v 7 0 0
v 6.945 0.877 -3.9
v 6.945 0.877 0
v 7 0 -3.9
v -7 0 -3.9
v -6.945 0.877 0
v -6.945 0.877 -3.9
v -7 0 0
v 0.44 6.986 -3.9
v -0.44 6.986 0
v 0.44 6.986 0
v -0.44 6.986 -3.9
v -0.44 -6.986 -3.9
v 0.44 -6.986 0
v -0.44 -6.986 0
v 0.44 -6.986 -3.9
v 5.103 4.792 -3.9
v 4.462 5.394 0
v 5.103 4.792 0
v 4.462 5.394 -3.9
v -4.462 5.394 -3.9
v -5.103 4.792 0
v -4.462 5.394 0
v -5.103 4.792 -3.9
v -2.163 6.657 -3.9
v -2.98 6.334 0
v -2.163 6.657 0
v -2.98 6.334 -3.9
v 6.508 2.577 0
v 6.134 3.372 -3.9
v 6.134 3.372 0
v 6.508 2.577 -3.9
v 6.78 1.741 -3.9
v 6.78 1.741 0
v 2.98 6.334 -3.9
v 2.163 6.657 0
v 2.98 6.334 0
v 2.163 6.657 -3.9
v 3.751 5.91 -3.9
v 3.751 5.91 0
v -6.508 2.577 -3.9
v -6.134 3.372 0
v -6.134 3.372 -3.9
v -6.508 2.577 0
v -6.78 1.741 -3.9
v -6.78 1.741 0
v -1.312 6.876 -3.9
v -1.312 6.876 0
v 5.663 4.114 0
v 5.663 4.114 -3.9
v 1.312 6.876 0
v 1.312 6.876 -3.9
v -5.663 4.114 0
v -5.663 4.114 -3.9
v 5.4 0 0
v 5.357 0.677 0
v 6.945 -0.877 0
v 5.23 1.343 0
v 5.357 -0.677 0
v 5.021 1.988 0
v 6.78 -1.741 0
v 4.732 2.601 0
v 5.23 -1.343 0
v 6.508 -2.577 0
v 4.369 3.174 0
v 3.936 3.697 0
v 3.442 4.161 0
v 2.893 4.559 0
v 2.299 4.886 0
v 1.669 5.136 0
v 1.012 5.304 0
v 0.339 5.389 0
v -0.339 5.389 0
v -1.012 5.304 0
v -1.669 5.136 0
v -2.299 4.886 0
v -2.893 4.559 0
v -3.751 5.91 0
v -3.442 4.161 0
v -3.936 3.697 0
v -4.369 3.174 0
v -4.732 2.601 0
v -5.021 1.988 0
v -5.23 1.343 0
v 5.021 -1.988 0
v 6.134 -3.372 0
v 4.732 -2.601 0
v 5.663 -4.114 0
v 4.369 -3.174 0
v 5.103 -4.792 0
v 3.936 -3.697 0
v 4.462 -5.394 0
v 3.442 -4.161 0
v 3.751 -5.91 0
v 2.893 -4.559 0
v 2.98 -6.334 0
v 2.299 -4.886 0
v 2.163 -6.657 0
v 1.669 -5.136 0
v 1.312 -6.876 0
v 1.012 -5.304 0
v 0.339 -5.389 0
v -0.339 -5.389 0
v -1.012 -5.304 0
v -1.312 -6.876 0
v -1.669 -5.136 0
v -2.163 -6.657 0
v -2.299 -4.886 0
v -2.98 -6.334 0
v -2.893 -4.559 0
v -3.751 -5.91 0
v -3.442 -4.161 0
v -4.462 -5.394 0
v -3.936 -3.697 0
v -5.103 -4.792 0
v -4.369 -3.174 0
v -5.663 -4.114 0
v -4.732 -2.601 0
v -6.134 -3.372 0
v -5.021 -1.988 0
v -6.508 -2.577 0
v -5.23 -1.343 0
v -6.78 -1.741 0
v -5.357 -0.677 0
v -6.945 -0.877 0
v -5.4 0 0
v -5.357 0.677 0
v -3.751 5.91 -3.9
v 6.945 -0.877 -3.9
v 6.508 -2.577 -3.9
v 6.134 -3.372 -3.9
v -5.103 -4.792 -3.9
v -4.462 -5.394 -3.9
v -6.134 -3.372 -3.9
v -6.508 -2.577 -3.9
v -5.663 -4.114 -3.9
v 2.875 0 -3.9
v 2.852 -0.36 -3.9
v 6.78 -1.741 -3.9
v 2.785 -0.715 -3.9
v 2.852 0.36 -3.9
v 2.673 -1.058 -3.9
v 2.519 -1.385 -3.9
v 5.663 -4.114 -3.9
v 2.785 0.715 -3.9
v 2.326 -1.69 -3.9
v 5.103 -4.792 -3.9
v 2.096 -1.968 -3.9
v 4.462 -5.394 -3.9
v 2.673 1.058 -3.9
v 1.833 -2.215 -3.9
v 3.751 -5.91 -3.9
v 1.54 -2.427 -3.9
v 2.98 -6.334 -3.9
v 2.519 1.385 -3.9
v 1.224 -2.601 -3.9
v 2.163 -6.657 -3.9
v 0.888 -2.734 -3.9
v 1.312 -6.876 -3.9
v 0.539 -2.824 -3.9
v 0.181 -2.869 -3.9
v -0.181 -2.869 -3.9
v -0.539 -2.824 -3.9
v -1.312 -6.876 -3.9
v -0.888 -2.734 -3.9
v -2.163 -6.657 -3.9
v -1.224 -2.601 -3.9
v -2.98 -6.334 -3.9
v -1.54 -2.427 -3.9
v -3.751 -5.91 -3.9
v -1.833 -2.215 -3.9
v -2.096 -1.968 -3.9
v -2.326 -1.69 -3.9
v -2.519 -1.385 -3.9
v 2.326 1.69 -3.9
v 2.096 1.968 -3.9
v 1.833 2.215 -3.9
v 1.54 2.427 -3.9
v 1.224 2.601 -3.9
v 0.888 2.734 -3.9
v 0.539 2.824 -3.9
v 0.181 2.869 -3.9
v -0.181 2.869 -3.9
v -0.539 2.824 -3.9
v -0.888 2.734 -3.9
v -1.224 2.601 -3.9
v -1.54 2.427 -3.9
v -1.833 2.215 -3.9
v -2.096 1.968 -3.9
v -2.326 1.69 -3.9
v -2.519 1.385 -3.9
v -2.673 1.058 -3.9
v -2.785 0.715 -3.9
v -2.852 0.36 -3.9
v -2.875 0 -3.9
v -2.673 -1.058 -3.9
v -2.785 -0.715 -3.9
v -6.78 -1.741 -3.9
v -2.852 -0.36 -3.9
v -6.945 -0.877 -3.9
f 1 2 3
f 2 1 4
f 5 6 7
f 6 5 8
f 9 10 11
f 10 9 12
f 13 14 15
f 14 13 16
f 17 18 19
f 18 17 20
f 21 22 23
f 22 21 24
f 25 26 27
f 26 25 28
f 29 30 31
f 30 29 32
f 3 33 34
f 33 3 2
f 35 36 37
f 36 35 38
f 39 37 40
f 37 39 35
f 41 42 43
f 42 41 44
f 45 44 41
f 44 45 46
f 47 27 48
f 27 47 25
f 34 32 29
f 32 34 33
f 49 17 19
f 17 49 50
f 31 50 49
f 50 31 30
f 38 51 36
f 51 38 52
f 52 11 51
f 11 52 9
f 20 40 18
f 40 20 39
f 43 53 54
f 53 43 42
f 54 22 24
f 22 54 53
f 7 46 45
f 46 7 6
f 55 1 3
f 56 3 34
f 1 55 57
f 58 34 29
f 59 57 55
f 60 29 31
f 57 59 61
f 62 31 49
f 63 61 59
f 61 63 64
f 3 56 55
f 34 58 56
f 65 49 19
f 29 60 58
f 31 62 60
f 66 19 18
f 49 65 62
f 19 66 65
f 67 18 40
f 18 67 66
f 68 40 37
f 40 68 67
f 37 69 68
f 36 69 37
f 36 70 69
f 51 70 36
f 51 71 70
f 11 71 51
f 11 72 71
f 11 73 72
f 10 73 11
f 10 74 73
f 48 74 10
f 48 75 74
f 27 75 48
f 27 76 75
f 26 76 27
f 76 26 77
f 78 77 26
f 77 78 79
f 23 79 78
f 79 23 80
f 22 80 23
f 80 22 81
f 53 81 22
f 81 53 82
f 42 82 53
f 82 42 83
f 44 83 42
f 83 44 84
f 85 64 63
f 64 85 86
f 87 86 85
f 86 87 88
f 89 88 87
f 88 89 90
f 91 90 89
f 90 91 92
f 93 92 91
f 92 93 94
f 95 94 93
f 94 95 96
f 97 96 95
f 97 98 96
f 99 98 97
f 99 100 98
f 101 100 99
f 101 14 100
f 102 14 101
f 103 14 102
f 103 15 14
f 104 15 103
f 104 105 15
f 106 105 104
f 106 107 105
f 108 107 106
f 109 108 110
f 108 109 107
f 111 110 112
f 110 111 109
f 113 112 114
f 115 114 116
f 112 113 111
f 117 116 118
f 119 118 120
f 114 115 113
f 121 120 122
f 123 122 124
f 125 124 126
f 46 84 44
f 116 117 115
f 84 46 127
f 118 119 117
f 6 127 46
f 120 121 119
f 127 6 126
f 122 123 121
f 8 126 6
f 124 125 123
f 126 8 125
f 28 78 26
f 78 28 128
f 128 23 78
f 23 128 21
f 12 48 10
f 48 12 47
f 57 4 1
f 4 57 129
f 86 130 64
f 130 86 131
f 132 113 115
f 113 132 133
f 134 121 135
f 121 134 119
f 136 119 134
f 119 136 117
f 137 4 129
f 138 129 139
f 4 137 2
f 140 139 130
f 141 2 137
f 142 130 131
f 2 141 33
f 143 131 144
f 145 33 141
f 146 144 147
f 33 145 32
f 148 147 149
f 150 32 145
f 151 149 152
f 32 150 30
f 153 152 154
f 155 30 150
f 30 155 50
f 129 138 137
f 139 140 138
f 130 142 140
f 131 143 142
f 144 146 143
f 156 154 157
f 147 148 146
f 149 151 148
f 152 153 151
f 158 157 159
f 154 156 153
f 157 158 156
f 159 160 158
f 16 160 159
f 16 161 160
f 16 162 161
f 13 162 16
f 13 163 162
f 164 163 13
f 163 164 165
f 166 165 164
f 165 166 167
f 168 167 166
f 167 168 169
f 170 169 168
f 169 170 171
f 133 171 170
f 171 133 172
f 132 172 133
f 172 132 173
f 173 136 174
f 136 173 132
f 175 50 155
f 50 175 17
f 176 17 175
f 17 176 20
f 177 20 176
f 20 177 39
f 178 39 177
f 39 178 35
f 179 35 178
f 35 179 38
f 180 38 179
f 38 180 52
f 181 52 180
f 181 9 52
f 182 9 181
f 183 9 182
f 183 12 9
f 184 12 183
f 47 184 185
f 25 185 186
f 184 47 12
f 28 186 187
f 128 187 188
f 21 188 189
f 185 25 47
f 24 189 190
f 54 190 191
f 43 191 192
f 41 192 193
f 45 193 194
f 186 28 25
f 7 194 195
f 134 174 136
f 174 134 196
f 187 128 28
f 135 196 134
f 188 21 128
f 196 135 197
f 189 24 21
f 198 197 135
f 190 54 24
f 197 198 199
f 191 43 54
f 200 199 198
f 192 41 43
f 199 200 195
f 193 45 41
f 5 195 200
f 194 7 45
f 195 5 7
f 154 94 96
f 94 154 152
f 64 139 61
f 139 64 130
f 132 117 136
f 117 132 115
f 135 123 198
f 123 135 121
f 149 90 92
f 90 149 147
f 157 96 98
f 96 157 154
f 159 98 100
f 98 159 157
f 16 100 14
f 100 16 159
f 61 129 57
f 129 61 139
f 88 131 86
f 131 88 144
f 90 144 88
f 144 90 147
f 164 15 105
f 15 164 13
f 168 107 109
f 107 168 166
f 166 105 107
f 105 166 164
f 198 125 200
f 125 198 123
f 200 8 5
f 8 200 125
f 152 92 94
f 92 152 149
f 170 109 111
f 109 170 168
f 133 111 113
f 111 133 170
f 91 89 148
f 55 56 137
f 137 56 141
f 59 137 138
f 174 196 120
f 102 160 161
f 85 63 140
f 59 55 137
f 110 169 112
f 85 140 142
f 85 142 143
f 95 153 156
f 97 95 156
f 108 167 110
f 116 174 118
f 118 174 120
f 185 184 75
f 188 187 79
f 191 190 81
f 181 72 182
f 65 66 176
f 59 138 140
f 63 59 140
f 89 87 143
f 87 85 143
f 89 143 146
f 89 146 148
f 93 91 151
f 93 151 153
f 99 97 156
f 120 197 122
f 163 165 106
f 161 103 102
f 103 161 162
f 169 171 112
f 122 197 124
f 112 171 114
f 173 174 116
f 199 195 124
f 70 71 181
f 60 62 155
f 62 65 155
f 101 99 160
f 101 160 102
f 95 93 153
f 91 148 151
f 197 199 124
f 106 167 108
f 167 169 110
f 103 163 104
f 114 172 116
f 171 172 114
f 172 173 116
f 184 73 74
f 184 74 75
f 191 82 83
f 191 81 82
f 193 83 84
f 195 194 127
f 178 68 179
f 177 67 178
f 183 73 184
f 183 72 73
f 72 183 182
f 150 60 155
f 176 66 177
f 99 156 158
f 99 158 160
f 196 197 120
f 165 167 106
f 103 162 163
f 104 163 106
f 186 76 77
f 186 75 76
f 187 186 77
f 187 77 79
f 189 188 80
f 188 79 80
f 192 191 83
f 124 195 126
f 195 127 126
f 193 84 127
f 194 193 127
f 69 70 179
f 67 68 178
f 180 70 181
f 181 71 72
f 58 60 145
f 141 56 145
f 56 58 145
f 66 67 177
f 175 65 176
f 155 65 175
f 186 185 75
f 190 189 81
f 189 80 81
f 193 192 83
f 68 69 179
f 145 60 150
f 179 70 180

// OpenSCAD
$fn = 50;


difference() {
	union() {
		translate(v = [0, 0, -3.9000000000]) {
			cylinder(h = 3.9000000000, r = 7.0000000000);
		}
		#translate(v = [0, 0, -6.9000000000]) {
			cylinder(h = 6.9000000000, r = 2.8750000000);
		}
	}
	union() {
		translate(v = [0, 0, 0]) {
			rotate(a = [0, 0, 0]) {
				difference() {
					union() {
						translate(v = [0, 0, -6.9000000000]) {
							cylinder(h = 6.9000000000, r = 2.6000000000);
						}
						translate(v = [0, 0, -3.9000000000]) {
							cylinder(h = 3.9000000000, r1 = 2.8750000000, r2 = 5.4000000000);
						}
						translate(v = [0, 0, -6.9000000000]) {
							cylinder(h = 6.9000000000, r = 2.8750000000);
						}
						translate(v = [0, 0, -6.9000000000]) {
							cylinder(h = 6.9000000000, r = 2.6000000000);
						}
					}
					union();
				}
			}
		}
	}
}
